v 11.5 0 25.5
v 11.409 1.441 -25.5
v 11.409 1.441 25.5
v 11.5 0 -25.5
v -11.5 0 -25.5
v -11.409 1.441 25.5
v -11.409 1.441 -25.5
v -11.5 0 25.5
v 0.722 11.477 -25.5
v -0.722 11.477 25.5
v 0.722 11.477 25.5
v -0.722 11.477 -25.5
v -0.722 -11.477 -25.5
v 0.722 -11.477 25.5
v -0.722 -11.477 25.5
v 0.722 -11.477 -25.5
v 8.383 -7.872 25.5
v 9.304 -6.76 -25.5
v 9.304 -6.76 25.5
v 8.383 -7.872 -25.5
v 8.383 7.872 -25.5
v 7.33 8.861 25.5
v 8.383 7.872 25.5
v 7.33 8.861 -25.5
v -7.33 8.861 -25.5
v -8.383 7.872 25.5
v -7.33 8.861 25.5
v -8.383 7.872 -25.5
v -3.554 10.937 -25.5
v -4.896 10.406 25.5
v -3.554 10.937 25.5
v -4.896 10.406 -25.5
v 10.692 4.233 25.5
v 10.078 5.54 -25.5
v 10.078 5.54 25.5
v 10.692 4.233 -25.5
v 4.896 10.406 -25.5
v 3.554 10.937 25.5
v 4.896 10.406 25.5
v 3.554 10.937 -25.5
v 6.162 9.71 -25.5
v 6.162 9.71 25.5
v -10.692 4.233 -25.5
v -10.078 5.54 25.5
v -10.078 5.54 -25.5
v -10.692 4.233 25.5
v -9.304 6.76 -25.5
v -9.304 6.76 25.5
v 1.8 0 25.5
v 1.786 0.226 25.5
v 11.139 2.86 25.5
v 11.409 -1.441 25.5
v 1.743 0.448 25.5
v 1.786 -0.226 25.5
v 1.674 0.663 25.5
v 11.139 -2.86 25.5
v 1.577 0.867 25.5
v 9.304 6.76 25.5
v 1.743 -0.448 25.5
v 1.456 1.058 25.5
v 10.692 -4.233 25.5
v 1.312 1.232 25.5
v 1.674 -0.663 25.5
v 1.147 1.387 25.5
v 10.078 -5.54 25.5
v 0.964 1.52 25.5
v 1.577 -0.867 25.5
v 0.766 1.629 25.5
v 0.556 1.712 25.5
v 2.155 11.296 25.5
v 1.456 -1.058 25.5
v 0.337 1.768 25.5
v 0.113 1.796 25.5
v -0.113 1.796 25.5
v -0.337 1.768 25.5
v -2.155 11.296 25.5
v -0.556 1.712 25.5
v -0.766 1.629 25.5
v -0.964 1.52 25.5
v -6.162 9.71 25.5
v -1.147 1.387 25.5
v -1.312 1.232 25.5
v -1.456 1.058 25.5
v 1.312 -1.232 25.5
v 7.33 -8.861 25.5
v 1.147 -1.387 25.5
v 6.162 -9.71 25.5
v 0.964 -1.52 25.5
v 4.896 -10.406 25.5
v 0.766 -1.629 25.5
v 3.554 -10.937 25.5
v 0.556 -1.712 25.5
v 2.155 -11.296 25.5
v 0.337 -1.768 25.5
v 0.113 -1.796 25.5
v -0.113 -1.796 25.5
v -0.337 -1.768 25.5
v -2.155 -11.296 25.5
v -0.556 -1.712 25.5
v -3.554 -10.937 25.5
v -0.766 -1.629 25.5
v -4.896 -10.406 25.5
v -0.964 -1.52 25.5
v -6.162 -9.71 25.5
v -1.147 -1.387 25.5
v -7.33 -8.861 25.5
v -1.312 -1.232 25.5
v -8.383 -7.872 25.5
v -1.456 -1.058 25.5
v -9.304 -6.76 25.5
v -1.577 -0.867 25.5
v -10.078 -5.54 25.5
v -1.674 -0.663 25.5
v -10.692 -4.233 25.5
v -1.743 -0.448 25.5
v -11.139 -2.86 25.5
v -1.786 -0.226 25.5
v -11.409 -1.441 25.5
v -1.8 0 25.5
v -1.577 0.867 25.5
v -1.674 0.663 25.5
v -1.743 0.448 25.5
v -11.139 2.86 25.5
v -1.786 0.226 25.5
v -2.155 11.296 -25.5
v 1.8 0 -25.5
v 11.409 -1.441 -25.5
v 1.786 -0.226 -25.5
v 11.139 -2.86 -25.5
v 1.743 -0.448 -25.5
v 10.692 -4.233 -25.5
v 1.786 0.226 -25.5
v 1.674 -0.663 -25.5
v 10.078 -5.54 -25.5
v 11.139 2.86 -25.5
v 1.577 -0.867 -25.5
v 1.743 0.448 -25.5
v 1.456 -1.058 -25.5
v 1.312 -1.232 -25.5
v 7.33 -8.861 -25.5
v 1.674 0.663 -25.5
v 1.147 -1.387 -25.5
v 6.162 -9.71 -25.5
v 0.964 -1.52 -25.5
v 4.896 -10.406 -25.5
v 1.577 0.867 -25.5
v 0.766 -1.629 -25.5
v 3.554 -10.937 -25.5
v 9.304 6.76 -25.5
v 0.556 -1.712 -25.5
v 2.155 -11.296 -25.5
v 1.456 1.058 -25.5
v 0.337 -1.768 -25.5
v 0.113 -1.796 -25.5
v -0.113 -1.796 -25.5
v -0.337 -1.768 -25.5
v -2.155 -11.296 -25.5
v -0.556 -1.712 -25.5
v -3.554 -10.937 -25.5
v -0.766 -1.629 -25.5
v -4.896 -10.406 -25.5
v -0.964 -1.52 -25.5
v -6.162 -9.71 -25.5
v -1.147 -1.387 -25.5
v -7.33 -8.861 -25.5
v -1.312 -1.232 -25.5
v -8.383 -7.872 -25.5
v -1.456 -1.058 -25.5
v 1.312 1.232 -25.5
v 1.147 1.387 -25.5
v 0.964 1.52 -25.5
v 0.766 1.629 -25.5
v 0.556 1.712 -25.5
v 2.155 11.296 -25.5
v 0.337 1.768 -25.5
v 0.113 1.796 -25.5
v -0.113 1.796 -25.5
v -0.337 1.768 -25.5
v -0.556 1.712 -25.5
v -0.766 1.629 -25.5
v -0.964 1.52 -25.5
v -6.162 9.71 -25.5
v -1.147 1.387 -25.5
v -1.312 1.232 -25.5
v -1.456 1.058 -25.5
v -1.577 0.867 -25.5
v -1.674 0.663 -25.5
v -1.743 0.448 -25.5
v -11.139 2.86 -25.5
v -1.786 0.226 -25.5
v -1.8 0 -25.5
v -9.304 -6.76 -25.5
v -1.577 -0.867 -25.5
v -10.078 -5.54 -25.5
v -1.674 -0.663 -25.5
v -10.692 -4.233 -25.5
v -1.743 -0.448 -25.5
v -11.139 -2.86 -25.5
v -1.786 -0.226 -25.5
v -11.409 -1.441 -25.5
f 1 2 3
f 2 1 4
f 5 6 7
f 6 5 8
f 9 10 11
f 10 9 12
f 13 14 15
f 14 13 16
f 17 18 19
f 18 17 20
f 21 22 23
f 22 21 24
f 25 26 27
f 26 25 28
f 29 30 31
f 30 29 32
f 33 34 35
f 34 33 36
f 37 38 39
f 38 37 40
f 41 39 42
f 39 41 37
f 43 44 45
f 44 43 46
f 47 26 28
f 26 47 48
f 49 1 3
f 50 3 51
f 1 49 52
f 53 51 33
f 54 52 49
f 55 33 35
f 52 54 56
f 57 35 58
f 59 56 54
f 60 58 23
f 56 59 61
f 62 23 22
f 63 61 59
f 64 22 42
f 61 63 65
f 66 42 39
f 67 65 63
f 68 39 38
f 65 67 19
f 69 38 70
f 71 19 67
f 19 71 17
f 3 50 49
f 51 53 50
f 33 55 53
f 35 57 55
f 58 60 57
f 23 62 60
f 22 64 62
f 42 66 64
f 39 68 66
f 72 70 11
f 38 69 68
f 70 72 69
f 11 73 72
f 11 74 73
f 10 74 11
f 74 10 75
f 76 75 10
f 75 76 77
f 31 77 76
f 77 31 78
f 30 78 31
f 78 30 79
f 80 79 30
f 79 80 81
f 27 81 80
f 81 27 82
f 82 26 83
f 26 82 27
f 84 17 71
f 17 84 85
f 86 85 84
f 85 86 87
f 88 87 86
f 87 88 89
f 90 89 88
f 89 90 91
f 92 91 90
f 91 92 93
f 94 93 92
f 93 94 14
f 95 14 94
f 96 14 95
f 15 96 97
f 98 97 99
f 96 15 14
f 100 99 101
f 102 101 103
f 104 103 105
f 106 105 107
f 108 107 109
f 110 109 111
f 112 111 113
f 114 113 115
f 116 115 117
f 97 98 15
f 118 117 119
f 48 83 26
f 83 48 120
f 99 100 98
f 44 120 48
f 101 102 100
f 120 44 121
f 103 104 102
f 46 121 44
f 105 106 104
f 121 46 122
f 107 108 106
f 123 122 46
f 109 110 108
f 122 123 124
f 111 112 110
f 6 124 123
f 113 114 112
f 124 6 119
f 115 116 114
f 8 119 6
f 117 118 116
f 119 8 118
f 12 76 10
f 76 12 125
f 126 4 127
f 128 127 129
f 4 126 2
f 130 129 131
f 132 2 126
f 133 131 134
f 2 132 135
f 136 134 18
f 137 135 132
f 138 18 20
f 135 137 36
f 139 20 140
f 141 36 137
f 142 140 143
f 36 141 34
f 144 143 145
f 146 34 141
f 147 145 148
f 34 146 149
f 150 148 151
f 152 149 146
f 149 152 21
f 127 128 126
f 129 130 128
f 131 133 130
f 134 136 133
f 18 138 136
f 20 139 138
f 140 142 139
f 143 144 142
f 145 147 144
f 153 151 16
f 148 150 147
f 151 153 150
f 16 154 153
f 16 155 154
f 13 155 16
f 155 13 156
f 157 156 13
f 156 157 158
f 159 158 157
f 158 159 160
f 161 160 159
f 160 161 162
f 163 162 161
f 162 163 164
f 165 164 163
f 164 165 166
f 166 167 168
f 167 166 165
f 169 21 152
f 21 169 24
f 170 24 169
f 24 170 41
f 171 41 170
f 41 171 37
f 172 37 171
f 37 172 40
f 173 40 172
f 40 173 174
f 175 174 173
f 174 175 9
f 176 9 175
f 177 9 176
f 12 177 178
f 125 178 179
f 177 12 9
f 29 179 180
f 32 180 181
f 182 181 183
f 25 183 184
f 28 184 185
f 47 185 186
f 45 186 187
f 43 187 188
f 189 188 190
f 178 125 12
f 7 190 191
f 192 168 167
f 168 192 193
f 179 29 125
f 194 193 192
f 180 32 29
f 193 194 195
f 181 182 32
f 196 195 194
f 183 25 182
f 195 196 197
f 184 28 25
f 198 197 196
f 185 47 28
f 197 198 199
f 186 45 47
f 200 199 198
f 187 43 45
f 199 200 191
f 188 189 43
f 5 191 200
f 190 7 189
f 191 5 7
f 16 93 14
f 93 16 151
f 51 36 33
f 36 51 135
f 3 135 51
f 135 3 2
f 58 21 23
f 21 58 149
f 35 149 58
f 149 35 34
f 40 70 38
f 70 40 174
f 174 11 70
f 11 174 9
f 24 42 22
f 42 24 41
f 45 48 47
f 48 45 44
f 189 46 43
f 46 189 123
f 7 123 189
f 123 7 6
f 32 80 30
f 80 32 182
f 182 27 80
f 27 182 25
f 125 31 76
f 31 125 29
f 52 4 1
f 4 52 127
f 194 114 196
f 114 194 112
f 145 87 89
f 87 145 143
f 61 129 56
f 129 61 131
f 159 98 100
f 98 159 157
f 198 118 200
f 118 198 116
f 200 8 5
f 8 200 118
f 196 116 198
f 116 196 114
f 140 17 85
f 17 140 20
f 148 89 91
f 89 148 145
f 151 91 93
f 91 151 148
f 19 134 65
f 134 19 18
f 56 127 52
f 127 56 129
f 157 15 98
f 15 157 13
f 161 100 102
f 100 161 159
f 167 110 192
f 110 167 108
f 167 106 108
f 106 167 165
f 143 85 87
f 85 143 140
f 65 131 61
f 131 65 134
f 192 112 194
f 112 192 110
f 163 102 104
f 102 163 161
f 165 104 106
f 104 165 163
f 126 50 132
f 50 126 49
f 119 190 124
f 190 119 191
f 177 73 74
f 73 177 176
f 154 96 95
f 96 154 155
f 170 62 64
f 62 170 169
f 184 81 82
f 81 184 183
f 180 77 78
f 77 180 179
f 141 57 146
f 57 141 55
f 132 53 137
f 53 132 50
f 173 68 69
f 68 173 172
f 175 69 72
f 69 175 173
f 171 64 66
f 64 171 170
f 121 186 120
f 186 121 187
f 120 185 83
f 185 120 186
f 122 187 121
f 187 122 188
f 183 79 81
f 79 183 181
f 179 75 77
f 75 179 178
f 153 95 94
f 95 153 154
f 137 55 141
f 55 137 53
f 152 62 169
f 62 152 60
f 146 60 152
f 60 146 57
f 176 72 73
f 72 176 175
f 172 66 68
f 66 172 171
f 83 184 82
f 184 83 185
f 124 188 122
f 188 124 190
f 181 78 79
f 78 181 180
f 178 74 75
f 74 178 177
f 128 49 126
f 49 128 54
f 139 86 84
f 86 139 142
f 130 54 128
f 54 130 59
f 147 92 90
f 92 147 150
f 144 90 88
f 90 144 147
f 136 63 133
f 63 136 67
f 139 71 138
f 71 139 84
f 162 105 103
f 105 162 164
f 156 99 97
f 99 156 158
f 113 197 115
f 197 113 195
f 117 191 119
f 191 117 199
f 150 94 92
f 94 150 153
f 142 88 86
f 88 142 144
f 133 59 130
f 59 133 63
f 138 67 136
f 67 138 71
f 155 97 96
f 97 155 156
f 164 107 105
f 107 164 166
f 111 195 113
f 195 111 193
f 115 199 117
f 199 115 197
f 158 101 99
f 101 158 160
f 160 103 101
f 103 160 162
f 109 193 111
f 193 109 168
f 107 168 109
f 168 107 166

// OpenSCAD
$fn = 50;


difference() {
	union() {
		translate(v = [0, 0, -25.5000000000]) {
			cylinder(h = 51, r = 11.5000000000);
		}
	}
	union() {
		translate(v = [0, 0, -100.0000000000]) {
			cylinder(h = 200, r = 1.8000000000);
		}
	}
}
